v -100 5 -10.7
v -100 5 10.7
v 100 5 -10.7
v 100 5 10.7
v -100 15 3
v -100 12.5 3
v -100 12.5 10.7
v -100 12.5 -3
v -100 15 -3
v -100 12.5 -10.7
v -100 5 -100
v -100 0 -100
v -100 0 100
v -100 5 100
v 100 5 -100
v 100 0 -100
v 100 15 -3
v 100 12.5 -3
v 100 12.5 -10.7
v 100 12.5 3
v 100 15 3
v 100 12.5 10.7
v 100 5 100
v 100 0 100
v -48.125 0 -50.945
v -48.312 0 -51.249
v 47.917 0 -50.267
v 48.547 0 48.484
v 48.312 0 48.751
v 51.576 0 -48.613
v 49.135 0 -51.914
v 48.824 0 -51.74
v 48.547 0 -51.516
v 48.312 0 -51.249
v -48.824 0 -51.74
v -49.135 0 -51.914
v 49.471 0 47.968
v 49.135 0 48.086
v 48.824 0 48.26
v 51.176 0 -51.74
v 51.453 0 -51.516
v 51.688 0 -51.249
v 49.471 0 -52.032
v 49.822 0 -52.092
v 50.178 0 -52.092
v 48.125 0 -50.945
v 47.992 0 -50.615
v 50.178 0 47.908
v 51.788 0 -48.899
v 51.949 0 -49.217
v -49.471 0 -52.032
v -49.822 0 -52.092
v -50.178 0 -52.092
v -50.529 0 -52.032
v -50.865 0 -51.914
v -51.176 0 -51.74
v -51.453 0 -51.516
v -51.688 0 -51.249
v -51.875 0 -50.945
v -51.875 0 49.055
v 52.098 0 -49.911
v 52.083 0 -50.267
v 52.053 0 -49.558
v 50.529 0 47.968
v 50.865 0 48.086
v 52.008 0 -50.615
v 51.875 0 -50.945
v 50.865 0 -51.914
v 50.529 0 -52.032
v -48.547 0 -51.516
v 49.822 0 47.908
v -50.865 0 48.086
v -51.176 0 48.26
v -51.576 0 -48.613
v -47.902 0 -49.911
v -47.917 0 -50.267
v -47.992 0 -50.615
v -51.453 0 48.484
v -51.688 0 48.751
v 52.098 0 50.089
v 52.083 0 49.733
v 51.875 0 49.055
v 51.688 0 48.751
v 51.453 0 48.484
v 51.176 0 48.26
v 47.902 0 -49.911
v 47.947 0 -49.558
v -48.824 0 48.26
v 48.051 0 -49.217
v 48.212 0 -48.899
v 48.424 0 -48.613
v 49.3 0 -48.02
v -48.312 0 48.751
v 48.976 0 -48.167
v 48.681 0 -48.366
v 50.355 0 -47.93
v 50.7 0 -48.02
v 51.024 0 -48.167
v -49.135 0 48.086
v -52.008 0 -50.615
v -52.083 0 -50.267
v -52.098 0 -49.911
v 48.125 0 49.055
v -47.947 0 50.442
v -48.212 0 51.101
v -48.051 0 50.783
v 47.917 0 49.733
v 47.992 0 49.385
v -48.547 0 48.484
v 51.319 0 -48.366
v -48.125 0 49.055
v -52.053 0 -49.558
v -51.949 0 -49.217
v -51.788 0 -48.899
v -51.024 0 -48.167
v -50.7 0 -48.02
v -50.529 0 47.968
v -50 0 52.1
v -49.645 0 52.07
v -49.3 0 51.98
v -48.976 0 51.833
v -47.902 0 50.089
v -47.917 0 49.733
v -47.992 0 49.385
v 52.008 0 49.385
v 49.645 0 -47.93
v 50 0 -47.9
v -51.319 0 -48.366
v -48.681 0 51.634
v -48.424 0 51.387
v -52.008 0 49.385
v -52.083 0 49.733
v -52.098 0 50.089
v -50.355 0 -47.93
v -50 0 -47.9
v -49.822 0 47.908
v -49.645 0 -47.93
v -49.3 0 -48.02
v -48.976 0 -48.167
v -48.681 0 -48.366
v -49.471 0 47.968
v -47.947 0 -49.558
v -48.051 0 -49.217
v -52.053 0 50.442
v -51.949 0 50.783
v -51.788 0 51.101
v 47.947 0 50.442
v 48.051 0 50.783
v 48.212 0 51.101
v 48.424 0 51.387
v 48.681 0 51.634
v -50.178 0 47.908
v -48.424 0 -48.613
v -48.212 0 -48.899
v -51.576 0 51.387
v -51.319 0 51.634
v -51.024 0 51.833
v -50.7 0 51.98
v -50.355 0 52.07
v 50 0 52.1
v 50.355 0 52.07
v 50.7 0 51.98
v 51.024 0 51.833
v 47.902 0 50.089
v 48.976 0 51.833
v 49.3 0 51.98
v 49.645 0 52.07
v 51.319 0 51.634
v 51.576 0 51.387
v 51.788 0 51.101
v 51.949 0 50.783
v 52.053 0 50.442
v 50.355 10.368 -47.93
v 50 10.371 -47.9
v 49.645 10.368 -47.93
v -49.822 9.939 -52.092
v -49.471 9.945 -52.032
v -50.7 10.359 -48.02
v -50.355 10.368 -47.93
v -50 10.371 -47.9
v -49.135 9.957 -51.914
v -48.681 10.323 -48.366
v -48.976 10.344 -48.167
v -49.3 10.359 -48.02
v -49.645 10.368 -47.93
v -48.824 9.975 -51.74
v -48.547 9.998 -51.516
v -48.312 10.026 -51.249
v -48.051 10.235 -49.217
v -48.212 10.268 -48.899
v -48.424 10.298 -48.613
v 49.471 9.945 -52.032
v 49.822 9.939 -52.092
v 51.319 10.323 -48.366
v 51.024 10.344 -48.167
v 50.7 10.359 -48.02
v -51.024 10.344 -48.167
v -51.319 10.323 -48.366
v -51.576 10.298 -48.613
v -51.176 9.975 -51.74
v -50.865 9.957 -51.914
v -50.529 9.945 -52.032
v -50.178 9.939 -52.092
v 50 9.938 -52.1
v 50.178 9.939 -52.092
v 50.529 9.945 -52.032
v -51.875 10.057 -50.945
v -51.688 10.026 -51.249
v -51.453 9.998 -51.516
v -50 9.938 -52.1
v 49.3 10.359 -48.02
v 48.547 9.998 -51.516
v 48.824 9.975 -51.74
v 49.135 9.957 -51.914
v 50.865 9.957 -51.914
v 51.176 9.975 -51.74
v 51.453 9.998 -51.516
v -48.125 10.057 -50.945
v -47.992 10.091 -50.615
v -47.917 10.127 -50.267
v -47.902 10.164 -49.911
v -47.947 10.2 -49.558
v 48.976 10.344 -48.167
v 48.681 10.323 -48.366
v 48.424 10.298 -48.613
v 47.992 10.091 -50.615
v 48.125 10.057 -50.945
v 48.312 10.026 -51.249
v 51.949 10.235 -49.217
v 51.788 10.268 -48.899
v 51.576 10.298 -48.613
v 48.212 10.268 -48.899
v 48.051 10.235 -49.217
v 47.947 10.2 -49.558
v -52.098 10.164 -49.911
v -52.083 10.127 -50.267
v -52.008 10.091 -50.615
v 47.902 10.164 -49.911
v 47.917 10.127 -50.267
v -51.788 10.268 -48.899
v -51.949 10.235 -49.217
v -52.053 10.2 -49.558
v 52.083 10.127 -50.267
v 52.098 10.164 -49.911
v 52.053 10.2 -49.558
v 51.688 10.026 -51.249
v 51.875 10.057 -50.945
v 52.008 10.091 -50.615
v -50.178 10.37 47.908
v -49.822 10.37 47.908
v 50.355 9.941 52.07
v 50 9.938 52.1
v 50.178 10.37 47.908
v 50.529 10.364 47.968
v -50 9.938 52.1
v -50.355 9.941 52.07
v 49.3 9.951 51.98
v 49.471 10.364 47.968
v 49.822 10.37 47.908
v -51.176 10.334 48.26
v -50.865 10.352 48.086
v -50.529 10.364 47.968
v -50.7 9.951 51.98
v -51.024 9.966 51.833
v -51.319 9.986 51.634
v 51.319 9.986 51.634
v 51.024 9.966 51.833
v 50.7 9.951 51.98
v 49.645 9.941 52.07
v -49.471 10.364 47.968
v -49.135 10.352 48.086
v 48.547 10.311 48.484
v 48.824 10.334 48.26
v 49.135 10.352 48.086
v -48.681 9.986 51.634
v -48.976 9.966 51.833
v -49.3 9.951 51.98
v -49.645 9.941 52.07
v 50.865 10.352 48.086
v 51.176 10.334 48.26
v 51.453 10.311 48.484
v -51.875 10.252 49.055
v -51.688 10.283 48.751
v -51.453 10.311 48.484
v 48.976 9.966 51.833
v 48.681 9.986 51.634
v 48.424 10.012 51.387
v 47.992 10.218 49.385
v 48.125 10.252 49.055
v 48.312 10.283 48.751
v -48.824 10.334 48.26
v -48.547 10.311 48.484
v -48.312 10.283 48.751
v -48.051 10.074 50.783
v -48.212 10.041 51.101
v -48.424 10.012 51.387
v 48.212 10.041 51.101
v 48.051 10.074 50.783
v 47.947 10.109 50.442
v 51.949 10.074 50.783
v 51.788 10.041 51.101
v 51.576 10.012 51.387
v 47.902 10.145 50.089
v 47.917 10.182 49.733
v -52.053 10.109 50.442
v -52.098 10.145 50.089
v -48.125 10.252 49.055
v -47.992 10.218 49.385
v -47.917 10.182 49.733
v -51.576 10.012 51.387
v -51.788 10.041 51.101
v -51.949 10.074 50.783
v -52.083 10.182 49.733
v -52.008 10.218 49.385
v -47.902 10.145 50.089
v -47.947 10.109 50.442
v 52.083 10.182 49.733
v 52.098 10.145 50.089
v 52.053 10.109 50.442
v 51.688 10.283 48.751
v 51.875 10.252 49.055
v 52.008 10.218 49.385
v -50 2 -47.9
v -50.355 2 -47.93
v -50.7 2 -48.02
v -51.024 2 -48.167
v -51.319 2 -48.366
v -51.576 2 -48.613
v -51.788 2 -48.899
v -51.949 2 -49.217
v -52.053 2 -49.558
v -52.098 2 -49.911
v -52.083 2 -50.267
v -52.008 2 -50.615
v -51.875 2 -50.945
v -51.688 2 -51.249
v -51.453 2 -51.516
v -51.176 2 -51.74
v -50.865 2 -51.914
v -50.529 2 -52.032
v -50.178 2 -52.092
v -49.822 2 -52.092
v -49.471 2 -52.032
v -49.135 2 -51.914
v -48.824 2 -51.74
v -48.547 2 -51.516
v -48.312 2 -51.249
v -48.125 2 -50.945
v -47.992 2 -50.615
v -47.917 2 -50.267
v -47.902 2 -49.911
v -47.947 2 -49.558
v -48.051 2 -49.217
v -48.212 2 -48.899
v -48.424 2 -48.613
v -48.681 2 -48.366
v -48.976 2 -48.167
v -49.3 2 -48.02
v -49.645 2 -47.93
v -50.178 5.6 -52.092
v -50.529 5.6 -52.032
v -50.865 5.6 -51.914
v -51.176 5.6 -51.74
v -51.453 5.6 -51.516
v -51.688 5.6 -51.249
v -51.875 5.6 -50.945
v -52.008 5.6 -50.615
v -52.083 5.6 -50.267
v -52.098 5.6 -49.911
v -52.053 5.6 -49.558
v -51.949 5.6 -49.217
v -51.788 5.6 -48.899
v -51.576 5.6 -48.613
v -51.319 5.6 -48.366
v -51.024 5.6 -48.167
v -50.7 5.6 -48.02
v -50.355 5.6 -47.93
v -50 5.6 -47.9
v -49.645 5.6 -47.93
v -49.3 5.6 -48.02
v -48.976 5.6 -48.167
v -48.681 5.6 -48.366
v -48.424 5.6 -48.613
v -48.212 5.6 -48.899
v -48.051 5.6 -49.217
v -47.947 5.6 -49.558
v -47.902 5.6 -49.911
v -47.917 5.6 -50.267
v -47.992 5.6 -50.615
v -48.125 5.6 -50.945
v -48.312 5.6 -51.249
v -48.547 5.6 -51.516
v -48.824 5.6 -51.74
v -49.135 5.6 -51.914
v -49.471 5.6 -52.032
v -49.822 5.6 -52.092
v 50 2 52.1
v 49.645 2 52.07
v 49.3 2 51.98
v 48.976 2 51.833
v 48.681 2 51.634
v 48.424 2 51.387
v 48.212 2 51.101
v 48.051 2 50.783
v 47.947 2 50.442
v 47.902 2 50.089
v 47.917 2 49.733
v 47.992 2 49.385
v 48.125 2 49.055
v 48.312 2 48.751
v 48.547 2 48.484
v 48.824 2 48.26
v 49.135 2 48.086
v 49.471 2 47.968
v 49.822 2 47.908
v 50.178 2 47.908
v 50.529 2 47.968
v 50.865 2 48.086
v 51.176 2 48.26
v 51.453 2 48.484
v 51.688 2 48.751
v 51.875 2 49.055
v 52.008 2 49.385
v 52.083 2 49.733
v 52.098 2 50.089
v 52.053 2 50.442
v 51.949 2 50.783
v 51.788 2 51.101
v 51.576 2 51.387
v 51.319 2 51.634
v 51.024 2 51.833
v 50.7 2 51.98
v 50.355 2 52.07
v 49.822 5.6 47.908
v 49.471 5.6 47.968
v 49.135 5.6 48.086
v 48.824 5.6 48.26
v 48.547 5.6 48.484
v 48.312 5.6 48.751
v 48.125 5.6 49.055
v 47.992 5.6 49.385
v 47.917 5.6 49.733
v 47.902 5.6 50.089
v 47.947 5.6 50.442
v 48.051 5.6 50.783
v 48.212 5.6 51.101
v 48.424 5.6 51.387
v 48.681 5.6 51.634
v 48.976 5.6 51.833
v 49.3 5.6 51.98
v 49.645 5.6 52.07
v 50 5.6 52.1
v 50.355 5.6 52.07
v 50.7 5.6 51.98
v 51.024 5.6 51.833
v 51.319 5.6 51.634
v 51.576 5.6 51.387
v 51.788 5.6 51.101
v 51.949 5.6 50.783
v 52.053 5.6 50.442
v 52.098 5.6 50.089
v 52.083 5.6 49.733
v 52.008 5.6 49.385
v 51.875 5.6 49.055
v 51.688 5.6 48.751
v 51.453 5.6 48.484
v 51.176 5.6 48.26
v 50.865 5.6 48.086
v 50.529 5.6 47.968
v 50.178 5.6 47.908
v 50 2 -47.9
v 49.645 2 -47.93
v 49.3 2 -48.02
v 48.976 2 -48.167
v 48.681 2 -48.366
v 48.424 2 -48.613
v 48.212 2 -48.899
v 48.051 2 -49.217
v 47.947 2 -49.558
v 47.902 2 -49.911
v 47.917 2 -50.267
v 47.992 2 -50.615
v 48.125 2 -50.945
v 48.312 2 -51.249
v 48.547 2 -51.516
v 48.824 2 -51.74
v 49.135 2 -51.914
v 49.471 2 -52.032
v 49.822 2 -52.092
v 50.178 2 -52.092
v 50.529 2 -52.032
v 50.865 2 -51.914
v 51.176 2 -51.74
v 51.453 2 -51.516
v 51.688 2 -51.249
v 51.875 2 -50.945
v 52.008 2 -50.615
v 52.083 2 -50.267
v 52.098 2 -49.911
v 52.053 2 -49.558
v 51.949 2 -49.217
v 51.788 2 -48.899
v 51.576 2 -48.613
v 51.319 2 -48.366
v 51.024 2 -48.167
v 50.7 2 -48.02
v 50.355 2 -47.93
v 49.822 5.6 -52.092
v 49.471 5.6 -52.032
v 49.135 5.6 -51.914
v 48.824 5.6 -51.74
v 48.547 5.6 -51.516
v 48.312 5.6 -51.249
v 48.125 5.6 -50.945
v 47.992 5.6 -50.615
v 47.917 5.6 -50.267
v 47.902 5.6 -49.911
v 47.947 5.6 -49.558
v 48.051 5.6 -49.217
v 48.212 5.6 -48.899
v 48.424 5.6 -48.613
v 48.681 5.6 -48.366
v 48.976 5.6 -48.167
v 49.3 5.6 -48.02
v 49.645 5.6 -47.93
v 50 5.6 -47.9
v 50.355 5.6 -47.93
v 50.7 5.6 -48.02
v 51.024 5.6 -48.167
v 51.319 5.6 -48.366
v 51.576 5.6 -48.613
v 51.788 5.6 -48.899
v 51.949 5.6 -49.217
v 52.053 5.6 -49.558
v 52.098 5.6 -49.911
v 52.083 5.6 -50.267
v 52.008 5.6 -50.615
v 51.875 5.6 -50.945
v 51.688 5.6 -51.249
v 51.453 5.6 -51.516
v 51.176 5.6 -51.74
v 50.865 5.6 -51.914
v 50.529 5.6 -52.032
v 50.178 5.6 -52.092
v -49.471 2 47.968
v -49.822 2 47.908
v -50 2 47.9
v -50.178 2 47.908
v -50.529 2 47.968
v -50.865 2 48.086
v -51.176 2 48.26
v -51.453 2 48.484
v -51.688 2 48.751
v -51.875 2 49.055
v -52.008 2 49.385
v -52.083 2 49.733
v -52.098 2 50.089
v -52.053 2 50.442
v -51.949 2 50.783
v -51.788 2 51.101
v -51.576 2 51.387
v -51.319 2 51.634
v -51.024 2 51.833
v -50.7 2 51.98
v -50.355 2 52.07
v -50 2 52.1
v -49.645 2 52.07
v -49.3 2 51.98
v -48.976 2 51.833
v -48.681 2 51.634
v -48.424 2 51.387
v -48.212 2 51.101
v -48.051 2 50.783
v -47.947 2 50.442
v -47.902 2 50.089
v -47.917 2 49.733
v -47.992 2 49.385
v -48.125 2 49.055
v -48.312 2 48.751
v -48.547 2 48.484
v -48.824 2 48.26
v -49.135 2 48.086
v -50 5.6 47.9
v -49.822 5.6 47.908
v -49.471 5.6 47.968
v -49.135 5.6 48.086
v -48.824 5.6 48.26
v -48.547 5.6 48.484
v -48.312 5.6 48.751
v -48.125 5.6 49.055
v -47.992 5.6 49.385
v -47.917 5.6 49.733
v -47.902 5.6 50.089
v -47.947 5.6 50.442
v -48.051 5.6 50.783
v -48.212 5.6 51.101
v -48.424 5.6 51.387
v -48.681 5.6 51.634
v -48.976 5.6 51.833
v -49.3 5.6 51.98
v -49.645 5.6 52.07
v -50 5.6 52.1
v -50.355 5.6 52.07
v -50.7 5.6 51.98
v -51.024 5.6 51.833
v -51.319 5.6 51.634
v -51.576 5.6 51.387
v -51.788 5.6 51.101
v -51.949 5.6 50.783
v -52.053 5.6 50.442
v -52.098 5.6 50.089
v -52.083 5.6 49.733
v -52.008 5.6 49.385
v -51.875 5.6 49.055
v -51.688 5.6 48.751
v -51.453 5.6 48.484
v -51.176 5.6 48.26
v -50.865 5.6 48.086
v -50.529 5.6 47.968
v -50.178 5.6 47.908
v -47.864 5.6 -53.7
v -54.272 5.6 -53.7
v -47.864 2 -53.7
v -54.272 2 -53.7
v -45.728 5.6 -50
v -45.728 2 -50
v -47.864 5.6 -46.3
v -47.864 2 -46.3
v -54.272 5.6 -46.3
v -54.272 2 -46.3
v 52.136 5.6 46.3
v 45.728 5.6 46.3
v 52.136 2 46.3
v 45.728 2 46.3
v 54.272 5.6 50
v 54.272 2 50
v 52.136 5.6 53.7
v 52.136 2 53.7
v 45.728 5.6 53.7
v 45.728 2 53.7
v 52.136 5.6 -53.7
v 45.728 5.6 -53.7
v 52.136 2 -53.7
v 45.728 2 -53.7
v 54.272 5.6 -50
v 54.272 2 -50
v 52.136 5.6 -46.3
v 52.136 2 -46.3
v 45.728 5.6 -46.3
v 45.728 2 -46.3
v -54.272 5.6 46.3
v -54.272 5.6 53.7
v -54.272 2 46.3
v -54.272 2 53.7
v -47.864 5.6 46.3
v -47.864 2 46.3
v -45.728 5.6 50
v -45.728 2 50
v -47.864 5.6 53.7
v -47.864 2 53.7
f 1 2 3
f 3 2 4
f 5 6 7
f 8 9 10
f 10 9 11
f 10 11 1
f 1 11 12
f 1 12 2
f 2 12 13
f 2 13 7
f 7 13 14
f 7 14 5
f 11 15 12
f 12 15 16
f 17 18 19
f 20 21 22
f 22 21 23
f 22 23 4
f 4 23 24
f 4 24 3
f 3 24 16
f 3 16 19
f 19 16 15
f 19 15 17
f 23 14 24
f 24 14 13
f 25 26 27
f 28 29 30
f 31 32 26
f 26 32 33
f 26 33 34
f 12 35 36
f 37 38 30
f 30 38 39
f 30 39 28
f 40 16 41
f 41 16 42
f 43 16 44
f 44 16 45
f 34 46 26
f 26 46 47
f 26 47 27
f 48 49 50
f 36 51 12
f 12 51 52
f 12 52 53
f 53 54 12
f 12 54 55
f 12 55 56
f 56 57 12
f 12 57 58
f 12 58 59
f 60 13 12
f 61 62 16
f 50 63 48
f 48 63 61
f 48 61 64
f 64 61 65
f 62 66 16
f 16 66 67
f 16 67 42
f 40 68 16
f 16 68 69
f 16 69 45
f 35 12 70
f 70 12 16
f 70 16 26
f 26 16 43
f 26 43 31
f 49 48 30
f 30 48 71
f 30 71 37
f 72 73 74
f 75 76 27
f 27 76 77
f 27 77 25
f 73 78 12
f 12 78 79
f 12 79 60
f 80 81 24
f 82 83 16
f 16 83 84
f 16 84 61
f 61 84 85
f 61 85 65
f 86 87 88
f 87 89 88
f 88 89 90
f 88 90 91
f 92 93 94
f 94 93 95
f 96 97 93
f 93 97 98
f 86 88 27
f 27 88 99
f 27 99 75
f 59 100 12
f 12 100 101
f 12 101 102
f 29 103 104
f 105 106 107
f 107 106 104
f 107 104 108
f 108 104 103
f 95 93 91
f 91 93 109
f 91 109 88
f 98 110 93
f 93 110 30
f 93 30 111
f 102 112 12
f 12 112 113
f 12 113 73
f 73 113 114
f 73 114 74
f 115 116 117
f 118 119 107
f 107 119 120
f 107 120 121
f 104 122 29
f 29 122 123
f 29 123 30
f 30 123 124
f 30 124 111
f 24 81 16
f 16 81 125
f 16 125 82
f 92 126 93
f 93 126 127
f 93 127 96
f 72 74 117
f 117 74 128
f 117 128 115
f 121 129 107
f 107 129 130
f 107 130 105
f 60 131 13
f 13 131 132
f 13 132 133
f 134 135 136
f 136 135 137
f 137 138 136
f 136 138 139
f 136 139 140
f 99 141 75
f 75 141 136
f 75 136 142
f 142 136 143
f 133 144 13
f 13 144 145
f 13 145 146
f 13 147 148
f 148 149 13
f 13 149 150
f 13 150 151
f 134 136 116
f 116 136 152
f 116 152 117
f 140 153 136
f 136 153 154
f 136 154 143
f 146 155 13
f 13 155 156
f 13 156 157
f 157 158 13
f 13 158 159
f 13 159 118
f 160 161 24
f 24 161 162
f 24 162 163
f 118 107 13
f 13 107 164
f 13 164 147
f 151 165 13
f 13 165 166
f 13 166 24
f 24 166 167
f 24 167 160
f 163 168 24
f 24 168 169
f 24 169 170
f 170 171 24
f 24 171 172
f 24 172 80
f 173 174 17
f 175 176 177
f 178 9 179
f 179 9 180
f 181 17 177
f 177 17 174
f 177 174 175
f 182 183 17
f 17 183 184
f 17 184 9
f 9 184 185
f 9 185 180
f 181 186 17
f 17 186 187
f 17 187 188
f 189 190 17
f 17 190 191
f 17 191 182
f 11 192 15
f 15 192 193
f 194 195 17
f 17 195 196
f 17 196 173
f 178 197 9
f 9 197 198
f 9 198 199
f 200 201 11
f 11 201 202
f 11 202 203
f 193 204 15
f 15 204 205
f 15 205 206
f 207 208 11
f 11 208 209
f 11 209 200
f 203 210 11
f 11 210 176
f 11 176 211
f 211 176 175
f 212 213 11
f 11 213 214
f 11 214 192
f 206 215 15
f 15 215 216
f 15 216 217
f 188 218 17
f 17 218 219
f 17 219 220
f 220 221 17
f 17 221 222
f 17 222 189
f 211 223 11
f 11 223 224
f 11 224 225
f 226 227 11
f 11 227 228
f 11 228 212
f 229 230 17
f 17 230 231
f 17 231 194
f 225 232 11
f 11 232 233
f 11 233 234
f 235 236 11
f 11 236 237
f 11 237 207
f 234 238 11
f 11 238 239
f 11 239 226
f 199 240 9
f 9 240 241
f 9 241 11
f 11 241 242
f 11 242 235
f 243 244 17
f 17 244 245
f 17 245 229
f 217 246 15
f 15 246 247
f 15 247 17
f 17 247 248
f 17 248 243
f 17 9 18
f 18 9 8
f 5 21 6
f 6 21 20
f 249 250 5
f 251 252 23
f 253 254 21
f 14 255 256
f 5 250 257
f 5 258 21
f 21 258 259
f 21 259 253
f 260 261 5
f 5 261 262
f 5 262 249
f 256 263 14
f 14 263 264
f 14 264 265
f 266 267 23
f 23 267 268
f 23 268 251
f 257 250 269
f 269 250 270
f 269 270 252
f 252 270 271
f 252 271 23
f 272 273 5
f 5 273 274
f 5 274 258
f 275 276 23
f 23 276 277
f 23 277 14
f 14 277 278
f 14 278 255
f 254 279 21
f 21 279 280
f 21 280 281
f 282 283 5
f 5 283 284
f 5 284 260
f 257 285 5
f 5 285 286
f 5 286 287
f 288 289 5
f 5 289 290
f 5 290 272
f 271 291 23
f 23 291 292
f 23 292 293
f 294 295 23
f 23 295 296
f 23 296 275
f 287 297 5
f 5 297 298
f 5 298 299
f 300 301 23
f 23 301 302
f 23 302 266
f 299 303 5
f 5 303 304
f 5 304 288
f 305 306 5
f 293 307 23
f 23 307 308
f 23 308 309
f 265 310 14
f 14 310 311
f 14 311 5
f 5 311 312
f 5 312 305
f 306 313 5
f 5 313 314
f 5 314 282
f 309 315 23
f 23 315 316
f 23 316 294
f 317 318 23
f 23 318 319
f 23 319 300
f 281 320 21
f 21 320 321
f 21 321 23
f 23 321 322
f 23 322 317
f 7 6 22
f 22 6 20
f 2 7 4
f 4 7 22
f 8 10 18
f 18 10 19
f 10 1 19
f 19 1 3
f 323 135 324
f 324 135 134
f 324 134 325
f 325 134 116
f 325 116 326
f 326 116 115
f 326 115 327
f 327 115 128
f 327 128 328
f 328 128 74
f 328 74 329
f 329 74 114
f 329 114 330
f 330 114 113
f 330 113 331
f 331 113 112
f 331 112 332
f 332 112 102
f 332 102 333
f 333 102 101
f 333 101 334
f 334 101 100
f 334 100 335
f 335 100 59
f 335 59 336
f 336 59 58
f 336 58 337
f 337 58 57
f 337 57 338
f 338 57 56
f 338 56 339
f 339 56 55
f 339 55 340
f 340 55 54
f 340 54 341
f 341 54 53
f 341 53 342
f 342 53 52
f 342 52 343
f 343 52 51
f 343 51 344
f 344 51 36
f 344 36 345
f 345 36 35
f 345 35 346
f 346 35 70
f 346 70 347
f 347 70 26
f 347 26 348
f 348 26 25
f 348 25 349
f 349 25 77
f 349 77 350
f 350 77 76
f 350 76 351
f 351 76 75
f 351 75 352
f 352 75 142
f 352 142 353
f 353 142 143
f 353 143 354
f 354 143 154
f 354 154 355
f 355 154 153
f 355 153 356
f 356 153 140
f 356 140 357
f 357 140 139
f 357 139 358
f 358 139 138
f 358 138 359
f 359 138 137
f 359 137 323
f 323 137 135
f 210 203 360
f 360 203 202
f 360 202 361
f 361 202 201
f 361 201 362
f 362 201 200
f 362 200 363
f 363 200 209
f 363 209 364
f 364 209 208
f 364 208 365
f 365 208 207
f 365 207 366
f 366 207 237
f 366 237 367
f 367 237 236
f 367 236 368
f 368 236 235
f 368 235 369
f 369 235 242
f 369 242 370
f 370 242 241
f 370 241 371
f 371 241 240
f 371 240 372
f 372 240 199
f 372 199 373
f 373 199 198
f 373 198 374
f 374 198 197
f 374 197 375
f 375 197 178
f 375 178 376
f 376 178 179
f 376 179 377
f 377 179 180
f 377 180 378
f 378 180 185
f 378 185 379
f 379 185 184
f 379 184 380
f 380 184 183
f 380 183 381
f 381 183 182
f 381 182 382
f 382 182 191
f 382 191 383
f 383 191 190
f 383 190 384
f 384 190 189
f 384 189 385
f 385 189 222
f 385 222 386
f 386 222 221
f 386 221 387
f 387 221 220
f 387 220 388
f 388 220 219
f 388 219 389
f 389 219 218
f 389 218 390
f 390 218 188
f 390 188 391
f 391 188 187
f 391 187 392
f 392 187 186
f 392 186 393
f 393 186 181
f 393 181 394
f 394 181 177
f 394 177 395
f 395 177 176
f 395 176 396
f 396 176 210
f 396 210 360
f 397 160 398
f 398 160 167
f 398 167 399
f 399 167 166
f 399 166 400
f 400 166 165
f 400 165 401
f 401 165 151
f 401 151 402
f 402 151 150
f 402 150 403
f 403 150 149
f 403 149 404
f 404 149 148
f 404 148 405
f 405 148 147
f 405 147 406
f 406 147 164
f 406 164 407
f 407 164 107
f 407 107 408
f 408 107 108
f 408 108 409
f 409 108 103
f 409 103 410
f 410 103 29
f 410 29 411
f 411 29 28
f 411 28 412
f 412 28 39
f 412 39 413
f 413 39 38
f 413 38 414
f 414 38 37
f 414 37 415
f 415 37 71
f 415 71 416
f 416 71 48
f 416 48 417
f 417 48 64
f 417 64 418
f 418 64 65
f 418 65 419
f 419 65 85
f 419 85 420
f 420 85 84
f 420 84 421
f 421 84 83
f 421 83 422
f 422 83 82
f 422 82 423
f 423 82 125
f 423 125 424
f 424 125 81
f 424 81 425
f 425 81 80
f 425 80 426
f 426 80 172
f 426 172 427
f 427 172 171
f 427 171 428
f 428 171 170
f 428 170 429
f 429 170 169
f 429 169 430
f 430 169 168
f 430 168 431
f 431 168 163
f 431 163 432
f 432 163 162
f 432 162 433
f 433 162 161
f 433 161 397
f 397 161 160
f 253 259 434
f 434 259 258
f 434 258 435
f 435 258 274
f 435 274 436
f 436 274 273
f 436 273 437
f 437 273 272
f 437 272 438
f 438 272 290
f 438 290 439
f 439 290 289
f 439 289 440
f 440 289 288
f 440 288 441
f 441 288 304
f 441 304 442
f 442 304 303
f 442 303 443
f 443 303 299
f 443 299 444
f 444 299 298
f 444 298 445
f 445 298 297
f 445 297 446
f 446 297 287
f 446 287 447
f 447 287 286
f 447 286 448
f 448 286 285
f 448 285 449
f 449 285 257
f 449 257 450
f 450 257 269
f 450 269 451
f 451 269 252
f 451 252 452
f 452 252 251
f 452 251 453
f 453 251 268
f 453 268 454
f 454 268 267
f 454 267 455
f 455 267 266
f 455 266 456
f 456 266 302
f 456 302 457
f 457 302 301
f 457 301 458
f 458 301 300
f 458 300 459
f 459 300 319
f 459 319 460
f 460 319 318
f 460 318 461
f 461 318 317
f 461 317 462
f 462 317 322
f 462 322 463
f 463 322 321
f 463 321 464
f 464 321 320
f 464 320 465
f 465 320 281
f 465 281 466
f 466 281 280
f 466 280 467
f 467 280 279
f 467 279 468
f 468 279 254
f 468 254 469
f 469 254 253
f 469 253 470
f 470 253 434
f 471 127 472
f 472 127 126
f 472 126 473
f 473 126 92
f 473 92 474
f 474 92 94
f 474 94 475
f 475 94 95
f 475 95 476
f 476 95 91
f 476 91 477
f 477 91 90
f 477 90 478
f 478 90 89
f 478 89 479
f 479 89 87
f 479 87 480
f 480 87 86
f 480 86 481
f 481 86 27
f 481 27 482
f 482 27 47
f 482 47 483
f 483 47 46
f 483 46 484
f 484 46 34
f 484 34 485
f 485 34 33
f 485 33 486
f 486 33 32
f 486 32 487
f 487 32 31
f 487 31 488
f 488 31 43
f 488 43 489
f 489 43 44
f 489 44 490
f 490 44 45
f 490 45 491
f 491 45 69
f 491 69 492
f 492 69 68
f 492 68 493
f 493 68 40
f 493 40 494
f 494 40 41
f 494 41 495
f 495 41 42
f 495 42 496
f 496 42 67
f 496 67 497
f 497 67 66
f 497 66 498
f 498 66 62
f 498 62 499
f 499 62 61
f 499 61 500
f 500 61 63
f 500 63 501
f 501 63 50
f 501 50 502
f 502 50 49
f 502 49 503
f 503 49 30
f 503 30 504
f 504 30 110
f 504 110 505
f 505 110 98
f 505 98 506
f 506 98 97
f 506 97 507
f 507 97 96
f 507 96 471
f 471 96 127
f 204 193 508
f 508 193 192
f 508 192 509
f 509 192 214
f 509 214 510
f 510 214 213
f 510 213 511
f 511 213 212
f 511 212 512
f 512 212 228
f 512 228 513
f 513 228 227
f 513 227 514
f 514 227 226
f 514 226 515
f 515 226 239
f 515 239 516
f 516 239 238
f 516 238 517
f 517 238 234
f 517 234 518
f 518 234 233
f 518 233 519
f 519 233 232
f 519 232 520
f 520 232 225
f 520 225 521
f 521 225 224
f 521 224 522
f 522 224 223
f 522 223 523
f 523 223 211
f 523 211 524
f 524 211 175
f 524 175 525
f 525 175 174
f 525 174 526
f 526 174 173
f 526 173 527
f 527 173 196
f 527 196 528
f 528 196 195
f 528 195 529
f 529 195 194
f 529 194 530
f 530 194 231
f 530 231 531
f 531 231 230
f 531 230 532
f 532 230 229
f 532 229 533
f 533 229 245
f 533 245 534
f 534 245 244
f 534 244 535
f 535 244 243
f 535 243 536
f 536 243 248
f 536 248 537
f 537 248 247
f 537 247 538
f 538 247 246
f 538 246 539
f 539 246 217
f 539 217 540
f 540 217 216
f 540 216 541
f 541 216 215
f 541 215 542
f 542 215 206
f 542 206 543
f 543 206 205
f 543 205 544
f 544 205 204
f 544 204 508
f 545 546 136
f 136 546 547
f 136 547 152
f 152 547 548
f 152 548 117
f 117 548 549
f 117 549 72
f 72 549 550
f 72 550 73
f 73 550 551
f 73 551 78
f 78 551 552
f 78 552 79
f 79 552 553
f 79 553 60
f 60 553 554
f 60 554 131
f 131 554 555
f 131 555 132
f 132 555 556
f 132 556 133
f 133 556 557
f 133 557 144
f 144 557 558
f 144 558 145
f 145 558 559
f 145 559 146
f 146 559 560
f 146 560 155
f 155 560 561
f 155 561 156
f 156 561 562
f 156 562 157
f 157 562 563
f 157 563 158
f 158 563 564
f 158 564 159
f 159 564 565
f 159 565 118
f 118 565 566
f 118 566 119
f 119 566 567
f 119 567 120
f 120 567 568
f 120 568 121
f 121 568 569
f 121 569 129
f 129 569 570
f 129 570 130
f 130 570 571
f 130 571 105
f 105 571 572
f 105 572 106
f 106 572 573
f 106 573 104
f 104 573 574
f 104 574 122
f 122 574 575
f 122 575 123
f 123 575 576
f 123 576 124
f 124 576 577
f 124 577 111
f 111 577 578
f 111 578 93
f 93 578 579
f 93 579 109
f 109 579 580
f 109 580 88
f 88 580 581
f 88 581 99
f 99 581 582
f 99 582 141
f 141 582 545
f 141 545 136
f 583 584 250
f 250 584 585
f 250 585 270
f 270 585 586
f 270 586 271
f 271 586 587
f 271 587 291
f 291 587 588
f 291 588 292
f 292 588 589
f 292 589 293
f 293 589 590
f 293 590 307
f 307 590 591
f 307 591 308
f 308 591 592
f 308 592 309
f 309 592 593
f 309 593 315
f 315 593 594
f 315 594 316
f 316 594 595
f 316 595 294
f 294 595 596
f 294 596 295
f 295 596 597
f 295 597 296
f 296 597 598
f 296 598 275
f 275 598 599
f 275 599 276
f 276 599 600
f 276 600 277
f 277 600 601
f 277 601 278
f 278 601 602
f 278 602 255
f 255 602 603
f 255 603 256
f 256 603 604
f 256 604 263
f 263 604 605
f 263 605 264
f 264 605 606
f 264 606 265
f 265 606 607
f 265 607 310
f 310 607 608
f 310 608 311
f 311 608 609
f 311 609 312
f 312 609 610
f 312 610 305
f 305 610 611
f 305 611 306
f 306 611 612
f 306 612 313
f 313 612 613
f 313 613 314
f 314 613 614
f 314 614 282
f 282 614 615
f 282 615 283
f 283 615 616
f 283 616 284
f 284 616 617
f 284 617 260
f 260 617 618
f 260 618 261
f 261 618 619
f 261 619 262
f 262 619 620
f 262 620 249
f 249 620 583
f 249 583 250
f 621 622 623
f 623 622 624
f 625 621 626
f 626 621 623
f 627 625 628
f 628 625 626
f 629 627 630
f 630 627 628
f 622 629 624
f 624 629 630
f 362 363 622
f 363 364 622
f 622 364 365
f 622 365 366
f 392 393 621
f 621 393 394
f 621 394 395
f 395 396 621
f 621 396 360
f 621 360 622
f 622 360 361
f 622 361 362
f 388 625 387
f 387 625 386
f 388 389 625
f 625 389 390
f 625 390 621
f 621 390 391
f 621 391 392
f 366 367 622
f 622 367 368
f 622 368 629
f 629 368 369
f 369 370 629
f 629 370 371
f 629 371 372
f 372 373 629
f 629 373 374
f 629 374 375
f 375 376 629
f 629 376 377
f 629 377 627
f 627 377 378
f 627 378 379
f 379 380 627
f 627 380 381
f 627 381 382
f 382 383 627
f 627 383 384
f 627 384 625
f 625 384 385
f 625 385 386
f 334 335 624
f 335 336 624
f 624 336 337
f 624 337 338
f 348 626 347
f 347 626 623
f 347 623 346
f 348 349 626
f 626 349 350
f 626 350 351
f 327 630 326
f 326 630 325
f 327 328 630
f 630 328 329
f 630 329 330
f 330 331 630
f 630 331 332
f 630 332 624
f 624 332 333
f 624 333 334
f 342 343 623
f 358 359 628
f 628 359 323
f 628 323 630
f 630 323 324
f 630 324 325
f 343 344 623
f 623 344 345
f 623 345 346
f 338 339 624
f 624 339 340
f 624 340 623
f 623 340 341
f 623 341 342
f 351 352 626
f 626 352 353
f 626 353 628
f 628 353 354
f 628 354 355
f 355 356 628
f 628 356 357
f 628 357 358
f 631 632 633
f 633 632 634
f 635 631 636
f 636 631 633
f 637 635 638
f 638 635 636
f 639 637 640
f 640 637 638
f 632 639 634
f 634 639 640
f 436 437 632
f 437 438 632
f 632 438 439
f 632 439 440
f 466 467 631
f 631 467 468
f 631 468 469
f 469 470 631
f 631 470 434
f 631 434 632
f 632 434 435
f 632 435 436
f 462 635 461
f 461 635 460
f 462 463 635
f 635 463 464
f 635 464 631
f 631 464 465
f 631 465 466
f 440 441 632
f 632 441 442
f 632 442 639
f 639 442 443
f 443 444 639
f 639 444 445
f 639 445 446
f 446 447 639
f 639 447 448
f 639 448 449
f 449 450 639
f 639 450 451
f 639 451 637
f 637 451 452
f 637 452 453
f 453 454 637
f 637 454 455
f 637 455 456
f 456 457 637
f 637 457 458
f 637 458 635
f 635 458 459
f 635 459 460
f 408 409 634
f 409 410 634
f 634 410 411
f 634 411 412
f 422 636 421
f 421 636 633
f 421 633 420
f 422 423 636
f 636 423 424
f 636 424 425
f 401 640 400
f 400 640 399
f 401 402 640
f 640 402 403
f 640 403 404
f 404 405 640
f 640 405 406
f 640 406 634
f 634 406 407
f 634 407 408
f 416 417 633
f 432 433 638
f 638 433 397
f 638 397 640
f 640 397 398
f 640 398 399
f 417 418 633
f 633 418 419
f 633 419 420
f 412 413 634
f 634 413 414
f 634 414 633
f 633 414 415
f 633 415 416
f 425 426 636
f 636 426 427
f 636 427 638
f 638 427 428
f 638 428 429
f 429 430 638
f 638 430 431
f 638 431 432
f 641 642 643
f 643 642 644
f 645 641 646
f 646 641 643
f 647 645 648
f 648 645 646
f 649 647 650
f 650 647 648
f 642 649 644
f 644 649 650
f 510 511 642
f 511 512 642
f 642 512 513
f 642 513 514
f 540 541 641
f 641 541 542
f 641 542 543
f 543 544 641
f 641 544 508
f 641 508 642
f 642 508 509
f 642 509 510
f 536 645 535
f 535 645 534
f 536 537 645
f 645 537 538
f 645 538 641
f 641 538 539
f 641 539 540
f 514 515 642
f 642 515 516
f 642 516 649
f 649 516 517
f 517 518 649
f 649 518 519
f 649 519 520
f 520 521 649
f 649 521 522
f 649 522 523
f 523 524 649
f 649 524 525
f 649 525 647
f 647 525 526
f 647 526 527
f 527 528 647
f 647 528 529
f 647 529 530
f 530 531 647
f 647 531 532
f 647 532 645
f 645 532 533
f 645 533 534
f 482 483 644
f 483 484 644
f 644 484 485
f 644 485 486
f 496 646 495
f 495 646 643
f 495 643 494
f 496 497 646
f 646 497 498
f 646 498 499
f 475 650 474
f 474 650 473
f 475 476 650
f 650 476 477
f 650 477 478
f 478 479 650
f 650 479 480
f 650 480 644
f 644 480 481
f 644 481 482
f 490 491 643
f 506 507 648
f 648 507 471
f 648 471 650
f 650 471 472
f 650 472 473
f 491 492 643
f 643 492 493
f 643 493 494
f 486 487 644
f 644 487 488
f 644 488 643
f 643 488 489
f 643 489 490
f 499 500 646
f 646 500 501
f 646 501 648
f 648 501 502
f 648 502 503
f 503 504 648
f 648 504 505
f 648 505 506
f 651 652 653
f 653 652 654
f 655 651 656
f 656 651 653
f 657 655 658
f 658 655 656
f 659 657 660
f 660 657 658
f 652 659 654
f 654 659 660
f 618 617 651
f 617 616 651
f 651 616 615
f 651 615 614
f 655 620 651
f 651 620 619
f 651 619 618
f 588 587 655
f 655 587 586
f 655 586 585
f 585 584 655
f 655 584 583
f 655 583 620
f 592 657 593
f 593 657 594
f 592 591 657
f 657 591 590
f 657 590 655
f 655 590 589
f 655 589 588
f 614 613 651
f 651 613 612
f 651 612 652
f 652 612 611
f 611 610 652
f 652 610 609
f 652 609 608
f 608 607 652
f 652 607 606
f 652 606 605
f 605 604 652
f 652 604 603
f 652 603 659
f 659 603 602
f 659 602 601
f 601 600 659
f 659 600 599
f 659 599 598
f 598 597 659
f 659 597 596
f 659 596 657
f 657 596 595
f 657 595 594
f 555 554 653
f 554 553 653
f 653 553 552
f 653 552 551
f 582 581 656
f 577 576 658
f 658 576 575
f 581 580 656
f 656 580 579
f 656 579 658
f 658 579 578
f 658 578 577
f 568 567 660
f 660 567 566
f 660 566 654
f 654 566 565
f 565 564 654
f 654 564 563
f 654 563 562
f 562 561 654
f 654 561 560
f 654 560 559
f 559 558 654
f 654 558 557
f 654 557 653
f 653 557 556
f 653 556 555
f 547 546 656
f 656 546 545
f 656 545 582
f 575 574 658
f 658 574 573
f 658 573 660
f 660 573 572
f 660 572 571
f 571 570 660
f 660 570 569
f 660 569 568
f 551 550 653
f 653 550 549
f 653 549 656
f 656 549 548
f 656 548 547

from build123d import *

# Parameters (mm, degrees)
SKETCH1_W           = 200
SKETCH1_H           = 200
BOSS_EXTRUDE1_DEPTH = 5
BOSS_EXTRUDE2_DEPTH = 200
CUT_EXTRUDE9_START  = -200
SKETCH13_W          = 21.4
SKETCH13_H          = 7.5
CUT_EXTRUDE9_DEPTH  = 200
CUT_EXTRUDE14_START = -2
CUT_EXTRUDE14_DEPTH = 3.6
SKETCH17_R          = 2.1
CUT_EXTRUDE15_DEPTH = 16


with BuildPart() as part:
    # Sketch1 → Boss-Extrude1 (new body)
    with BuildSketch(Plane(origin=(0, 0, 0), x_dir=(1, 0, 0), z_dir=(0, 1, 0))):
        Rectangle(SKETCH1_W, SKETCH1_H)
    extrude(amount=BOSS_EXTRUDE1_DEPTH)

    # Sketch9 → Boss-Extrude2 (add)
    with BuildSketch(Plane(origin=(100, 0, 0), x_dir=(0, 0, -1), z_dir=(1, 0, 0))):
        Polygon((-100, 5), (-3, 15), (-3, 5), align=None)
        Polygon((3, 5), (100, 5), (3, 15), align=None)
    extrude(amount=-BOSS_EXTRUDE2_DEPTH)

    # Sketch13 → Cut-Extrude9 (cut)
    with BuildSketch(Plane.ZY.offset(100).offset(CUT_EXTRUDE9_START)):
        with Locations((0, 8.75)):
            Rectangle(SKETCH13_W, SKETCH13_H)
    extrude(amount=CUT_EXTRUDE9_DEPTH, mode=Mode.SUBTRACT)

    # Sketch18 → Cut-Extrude14 (cut)
    with BuildSketch(Plane.XZ.offset(CUT_EXTRUDE14_START)):
        Polygon((-52.136195996, 46.3), (-47.863804004, 46.3), (-45.727608008, 50), (-47.863804004, 53.7), (-52.136195996, 53.7), (-54.272391992, 53.7), (-54.272391992, 46.3), align=None)
        Polygon((47.863804004, 46.3), (52.136195996, 46.3), (54.272391992, 50), (52.136195996, 53.7), (47.863804004, 53.7), (45.727608008, 53.7), (45.727608008, 46.3), align=None)
        Polygon((47.863804004, -53.7), (52.136195996, -53.7), (54.272391992, -50), (52.136195996, -46.3), (47.863804004, -46.3), (45.727608008, -46.3), (45.727608008, -53.7), align=None)
        Polygon((-52.136195996, -53.7), (-47.863804004, -53.7), (-45.727608008, -50), (-47.863804004, -46.3), (-52.136195996, -46.3), (-54.272391992, -46.3), (-54.272391992, -53.7), align=None)
    extrude(amount=-CUT_EXTRUDE14_DEPTH, mode=Mode.SUBTRACT)

    # Sketch17 → Cut-Extrude15 (cut, through all)
    with BuildSketch(Plane.XZ):
        with Locations((-50, 50)):
            Circle(SKETCH17_R)
        with Locations((50, 50)):
            Circle(SKETCH17_R)
        with Locations((50, -50)):
            Circle(SKETCH17_R)
        with Locations((-50, -50)):
            Circle(SKETCH17_R)
    extrude(amount=-CUT_EXTRUDE15_DEPTH, mode=Mode.SUBTRACT)


solid = part.part
